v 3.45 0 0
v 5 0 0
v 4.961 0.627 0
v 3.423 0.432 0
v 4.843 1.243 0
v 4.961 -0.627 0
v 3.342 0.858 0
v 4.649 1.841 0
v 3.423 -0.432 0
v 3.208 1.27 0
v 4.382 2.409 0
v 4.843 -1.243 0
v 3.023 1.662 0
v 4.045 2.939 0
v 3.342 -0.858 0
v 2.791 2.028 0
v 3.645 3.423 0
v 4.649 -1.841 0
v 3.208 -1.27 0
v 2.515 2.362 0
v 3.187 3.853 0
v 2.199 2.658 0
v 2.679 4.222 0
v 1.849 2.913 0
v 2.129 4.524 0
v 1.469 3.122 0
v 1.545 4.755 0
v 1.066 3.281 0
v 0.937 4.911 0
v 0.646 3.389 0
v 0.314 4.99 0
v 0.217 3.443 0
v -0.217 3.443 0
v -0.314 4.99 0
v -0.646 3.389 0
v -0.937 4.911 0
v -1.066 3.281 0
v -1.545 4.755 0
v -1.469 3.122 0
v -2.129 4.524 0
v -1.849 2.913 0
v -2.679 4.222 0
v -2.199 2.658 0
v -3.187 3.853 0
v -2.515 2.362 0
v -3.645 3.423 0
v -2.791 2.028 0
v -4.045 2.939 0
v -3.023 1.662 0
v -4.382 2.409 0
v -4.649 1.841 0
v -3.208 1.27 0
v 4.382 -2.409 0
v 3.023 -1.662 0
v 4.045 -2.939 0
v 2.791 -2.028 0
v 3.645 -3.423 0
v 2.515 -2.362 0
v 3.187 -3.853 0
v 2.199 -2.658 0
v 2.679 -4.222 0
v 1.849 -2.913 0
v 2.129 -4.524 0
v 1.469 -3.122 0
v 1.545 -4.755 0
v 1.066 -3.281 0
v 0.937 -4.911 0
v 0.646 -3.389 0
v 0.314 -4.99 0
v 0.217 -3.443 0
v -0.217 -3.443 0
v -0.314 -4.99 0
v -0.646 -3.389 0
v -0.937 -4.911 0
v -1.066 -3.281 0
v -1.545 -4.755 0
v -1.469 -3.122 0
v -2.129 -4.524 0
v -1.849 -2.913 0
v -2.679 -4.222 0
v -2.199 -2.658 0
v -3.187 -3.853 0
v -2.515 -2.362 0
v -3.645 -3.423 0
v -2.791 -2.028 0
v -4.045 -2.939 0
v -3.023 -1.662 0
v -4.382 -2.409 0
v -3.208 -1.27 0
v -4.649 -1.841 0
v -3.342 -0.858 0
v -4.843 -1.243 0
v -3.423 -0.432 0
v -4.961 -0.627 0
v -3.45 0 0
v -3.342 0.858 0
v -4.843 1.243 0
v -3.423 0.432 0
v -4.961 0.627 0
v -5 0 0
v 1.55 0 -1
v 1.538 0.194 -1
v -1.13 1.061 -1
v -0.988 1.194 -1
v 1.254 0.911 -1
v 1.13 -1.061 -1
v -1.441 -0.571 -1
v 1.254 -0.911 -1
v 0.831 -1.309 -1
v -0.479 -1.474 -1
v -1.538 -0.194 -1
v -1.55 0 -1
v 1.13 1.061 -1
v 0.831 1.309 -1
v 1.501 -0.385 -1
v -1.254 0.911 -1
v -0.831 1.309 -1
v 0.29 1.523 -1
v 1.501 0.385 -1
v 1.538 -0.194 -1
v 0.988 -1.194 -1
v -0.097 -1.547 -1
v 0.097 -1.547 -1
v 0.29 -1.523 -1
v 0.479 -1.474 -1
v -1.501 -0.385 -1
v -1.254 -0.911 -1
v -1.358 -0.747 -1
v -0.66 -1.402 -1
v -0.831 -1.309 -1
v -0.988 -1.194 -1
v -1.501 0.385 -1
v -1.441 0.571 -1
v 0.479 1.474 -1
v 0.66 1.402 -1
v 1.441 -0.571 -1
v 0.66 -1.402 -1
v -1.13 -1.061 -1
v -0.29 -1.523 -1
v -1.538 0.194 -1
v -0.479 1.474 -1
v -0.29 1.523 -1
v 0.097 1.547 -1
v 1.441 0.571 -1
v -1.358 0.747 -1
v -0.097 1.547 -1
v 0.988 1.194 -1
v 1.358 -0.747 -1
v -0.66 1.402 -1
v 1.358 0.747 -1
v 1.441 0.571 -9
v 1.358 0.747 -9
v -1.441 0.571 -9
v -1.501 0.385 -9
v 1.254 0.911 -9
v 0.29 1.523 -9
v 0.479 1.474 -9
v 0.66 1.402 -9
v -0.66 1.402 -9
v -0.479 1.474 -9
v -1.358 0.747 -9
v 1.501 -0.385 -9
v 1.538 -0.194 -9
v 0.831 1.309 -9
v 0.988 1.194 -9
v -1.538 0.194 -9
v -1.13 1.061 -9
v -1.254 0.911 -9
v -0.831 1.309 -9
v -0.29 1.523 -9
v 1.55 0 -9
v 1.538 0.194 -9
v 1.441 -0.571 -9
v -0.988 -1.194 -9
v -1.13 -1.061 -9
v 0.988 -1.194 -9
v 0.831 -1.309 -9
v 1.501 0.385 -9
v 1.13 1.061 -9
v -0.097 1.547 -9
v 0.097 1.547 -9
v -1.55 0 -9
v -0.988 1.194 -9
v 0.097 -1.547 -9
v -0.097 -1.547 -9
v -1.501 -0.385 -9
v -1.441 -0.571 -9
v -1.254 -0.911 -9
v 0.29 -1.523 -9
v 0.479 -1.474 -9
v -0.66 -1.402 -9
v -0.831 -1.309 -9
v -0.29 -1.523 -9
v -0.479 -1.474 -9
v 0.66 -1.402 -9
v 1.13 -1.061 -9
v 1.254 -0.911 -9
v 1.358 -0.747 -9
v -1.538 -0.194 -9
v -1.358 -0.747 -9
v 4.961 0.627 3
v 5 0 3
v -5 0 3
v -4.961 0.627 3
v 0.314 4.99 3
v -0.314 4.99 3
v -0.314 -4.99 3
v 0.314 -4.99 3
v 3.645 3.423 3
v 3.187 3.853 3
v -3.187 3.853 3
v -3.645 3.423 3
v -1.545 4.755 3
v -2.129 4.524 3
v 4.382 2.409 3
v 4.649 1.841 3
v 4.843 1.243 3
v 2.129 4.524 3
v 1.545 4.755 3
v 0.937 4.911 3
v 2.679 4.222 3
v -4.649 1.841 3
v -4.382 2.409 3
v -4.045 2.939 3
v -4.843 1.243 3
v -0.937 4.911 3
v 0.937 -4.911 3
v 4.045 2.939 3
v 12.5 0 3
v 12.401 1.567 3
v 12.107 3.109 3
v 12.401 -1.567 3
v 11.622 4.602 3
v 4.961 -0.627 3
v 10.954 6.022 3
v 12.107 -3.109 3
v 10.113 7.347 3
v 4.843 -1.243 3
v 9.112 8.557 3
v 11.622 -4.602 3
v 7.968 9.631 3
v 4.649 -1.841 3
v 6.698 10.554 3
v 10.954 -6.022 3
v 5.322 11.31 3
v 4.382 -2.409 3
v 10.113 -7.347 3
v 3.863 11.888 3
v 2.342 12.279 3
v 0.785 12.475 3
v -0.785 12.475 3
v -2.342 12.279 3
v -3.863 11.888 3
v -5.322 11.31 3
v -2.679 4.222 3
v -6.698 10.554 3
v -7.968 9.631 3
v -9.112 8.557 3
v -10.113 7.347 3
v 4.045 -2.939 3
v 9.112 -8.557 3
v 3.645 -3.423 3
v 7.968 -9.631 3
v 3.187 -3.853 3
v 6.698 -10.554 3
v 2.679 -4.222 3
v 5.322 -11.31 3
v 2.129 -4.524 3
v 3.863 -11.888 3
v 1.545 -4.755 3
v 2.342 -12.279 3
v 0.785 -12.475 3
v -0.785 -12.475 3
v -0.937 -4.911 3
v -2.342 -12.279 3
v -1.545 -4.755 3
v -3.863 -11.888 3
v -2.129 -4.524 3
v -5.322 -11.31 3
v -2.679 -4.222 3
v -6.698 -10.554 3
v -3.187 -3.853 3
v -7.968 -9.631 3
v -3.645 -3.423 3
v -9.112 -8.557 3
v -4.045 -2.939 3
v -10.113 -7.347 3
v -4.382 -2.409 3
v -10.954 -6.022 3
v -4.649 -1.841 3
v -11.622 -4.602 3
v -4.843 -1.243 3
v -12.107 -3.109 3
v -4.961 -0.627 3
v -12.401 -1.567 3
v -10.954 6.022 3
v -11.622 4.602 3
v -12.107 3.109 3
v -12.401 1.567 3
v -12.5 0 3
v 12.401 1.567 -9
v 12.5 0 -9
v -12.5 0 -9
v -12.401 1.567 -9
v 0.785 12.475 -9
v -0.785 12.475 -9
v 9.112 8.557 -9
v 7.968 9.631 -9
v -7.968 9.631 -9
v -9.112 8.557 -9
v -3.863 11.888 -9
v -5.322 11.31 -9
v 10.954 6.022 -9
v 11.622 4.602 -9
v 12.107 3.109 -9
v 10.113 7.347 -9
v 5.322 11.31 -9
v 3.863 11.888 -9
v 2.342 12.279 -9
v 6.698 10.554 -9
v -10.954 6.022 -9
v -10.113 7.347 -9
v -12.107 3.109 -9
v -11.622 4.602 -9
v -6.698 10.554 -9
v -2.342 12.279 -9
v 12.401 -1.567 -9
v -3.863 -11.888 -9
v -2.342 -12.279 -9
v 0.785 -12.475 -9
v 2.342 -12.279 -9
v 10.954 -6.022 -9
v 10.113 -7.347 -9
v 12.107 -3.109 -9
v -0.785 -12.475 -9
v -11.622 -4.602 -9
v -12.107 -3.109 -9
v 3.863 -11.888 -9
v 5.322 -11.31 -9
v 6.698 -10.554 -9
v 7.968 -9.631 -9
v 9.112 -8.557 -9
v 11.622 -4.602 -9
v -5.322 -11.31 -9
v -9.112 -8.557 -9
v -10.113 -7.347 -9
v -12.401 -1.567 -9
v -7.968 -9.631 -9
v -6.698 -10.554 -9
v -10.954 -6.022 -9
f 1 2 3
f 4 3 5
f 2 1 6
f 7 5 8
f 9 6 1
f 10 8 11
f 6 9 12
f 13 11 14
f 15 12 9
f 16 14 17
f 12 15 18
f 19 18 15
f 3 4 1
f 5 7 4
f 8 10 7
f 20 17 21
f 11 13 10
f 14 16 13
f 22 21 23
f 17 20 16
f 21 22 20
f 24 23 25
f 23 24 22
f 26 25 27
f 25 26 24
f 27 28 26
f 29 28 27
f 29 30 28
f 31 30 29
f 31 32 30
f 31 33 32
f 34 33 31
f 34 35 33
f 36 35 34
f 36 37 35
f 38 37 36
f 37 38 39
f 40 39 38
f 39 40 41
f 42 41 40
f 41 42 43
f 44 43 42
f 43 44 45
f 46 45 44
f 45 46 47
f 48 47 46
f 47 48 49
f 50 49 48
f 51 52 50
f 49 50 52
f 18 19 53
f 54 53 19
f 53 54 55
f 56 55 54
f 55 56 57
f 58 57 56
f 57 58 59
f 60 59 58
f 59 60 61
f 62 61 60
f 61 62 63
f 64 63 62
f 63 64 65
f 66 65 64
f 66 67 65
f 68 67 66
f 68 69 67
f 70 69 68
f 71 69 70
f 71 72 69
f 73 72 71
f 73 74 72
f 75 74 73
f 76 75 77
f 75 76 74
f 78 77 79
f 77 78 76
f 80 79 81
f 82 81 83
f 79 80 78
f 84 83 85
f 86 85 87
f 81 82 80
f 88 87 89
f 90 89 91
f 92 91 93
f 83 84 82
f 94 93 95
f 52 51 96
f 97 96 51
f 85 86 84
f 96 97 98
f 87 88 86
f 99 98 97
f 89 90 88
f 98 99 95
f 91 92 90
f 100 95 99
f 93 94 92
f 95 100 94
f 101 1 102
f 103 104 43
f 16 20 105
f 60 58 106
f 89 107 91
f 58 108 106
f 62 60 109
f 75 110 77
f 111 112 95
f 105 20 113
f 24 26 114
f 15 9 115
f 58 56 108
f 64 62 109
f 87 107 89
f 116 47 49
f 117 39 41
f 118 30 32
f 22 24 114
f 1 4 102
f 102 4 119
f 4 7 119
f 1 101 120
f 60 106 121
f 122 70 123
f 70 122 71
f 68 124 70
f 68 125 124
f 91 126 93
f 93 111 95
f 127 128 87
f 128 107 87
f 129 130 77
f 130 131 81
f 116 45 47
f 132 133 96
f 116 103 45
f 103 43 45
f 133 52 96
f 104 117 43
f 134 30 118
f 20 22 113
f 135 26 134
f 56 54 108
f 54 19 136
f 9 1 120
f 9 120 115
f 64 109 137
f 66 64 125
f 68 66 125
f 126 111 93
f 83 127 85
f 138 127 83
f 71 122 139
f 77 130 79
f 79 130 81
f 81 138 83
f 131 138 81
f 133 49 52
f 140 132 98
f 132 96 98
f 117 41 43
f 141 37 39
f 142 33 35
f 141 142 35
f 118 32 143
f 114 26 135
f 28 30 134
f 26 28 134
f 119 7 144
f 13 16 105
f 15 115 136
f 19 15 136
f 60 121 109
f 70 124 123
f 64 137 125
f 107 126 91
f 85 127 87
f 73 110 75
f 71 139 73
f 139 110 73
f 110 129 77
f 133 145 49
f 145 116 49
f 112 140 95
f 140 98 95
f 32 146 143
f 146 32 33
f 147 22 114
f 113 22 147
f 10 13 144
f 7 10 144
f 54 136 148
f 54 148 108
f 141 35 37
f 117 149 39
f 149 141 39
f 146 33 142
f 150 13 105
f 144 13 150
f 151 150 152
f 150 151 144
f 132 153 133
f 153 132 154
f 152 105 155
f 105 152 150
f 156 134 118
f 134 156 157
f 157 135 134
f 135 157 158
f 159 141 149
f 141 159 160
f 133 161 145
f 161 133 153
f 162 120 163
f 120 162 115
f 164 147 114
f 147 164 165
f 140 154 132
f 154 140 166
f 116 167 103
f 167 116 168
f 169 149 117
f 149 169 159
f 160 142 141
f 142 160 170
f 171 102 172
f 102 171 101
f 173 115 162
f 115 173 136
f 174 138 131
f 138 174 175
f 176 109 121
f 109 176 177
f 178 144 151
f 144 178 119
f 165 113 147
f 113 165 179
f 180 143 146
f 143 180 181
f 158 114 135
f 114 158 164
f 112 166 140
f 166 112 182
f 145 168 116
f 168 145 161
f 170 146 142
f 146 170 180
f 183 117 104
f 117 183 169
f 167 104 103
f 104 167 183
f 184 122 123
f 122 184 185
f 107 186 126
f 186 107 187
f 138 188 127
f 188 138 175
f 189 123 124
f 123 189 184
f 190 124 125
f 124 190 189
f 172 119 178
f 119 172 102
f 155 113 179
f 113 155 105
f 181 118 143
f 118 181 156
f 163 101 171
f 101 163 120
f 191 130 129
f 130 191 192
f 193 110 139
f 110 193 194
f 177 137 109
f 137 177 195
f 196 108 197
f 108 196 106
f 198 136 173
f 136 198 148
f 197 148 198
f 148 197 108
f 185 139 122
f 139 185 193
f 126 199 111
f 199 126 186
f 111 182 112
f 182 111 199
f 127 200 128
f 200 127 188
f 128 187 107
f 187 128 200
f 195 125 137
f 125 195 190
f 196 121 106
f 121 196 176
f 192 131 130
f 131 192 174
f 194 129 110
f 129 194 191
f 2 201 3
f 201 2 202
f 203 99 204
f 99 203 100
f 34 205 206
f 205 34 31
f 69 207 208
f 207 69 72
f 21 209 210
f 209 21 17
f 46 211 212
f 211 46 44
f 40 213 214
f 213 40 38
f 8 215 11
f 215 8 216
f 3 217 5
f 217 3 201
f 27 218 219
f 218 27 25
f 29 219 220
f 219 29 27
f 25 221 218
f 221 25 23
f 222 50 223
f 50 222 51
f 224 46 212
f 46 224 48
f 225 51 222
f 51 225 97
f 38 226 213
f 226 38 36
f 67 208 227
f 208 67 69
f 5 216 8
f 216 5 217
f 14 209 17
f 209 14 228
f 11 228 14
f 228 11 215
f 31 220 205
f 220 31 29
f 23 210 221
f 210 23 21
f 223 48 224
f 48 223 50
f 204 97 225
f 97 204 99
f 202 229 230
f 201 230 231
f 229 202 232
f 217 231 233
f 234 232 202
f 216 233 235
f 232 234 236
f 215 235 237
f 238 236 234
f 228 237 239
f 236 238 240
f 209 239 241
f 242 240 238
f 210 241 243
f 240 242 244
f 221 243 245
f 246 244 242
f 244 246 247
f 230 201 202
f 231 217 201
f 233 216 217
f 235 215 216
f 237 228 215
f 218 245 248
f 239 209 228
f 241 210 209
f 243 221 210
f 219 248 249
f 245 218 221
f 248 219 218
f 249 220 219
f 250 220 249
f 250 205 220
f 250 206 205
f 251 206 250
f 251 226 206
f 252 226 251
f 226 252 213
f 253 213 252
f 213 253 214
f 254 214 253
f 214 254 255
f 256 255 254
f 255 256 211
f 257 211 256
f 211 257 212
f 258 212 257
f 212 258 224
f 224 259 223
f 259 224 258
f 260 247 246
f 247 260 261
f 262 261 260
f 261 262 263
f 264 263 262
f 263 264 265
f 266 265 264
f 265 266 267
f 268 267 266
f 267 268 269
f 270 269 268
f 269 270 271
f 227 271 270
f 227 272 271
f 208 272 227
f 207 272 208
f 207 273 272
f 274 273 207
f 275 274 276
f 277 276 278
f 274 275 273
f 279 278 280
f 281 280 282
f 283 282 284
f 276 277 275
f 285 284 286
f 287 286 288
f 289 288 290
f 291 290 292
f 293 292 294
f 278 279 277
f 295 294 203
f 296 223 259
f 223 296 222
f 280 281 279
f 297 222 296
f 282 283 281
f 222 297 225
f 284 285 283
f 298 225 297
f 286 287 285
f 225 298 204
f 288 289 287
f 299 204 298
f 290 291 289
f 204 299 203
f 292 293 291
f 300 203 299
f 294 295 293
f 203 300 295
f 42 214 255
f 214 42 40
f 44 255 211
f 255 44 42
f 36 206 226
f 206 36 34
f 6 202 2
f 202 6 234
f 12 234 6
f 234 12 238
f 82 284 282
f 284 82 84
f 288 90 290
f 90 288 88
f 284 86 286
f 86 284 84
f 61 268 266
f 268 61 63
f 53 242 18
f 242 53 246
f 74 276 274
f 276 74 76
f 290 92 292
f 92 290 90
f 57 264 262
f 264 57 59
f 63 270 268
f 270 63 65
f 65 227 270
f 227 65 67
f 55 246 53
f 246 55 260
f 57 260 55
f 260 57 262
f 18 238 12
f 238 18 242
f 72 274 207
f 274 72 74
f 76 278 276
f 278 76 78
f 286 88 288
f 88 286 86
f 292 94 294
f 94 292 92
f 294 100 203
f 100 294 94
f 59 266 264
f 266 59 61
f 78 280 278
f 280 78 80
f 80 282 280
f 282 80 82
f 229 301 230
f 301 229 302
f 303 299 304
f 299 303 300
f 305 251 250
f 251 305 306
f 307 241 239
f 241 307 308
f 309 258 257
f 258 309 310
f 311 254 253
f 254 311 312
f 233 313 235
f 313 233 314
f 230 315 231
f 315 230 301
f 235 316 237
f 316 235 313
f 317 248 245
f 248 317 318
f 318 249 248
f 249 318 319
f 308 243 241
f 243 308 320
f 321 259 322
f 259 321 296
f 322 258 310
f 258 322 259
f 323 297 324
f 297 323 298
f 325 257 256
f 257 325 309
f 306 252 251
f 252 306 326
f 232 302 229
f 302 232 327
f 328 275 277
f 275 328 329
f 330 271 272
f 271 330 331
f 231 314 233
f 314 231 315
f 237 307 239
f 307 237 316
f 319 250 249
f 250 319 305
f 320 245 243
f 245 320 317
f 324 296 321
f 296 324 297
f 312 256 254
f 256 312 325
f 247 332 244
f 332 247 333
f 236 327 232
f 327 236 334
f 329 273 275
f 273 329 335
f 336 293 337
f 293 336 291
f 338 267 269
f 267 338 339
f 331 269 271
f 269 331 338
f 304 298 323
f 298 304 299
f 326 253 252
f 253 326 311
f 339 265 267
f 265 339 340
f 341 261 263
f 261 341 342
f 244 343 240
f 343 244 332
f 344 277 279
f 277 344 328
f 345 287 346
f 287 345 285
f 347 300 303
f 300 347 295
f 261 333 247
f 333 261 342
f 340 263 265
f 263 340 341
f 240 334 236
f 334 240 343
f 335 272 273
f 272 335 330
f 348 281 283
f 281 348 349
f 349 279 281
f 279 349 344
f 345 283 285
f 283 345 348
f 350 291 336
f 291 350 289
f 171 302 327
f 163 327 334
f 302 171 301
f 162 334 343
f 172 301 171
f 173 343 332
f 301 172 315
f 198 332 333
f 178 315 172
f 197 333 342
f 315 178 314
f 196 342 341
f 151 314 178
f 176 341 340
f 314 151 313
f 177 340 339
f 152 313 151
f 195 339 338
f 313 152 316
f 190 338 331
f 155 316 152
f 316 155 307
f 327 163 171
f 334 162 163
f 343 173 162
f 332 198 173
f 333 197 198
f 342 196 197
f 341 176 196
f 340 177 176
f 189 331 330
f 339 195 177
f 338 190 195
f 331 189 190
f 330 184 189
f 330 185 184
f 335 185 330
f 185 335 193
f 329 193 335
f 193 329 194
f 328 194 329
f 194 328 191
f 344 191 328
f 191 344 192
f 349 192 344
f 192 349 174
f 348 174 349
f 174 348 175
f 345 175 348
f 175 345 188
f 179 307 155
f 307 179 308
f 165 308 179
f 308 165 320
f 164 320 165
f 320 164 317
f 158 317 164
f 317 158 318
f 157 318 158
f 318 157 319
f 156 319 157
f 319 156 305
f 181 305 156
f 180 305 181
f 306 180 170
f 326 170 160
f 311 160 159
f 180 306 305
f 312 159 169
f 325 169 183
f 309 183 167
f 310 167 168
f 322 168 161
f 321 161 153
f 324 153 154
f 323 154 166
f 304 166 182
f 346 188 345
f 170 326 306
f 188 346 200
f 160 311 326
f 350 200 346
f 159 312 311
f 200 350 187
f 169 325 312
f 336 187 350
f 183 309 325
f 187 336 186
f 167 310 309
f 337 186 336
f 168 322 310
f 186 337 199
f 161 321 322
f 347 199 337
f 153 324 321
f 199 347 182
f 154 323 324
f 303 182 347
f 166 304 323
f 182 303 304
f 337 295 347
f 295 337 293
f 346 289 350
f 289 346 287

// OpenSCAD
$fn = 50;


difference() {
	union() {
		translate(v = [0, 0, -9.0000000000]) {
			cylinder(h = 12, r = 12.5000000000);
		}
	}
	union() {
		translate(v = [0, 0, 0]) {
			rotate(a = [0, 0, 0]) {
				difference() {
					union() {
						translate(v = [0, 0, -12.0000000000]) {
							cylinder(h = 12, r = 1.2500000000);
						}
						translate(v = [0, 0, -1.0000000000]) {
							cylinder(h = 1.0000000000, r1 = 1.5500000000, r2 = 3.4500000000);
						}
						translate(v = [0, 0, -12.0000000000]) {
							cylinder(h = 12, r = 1.5500000000);
						}
						translate(v = [0, 0, -12.0000000000]) {
							cylinder(h = 12, r = 1.2500000000);
						}
					}
					union();
				}
			}
		}
		#cylinder(h = 3, r = 5.0000000000);
	}
}
